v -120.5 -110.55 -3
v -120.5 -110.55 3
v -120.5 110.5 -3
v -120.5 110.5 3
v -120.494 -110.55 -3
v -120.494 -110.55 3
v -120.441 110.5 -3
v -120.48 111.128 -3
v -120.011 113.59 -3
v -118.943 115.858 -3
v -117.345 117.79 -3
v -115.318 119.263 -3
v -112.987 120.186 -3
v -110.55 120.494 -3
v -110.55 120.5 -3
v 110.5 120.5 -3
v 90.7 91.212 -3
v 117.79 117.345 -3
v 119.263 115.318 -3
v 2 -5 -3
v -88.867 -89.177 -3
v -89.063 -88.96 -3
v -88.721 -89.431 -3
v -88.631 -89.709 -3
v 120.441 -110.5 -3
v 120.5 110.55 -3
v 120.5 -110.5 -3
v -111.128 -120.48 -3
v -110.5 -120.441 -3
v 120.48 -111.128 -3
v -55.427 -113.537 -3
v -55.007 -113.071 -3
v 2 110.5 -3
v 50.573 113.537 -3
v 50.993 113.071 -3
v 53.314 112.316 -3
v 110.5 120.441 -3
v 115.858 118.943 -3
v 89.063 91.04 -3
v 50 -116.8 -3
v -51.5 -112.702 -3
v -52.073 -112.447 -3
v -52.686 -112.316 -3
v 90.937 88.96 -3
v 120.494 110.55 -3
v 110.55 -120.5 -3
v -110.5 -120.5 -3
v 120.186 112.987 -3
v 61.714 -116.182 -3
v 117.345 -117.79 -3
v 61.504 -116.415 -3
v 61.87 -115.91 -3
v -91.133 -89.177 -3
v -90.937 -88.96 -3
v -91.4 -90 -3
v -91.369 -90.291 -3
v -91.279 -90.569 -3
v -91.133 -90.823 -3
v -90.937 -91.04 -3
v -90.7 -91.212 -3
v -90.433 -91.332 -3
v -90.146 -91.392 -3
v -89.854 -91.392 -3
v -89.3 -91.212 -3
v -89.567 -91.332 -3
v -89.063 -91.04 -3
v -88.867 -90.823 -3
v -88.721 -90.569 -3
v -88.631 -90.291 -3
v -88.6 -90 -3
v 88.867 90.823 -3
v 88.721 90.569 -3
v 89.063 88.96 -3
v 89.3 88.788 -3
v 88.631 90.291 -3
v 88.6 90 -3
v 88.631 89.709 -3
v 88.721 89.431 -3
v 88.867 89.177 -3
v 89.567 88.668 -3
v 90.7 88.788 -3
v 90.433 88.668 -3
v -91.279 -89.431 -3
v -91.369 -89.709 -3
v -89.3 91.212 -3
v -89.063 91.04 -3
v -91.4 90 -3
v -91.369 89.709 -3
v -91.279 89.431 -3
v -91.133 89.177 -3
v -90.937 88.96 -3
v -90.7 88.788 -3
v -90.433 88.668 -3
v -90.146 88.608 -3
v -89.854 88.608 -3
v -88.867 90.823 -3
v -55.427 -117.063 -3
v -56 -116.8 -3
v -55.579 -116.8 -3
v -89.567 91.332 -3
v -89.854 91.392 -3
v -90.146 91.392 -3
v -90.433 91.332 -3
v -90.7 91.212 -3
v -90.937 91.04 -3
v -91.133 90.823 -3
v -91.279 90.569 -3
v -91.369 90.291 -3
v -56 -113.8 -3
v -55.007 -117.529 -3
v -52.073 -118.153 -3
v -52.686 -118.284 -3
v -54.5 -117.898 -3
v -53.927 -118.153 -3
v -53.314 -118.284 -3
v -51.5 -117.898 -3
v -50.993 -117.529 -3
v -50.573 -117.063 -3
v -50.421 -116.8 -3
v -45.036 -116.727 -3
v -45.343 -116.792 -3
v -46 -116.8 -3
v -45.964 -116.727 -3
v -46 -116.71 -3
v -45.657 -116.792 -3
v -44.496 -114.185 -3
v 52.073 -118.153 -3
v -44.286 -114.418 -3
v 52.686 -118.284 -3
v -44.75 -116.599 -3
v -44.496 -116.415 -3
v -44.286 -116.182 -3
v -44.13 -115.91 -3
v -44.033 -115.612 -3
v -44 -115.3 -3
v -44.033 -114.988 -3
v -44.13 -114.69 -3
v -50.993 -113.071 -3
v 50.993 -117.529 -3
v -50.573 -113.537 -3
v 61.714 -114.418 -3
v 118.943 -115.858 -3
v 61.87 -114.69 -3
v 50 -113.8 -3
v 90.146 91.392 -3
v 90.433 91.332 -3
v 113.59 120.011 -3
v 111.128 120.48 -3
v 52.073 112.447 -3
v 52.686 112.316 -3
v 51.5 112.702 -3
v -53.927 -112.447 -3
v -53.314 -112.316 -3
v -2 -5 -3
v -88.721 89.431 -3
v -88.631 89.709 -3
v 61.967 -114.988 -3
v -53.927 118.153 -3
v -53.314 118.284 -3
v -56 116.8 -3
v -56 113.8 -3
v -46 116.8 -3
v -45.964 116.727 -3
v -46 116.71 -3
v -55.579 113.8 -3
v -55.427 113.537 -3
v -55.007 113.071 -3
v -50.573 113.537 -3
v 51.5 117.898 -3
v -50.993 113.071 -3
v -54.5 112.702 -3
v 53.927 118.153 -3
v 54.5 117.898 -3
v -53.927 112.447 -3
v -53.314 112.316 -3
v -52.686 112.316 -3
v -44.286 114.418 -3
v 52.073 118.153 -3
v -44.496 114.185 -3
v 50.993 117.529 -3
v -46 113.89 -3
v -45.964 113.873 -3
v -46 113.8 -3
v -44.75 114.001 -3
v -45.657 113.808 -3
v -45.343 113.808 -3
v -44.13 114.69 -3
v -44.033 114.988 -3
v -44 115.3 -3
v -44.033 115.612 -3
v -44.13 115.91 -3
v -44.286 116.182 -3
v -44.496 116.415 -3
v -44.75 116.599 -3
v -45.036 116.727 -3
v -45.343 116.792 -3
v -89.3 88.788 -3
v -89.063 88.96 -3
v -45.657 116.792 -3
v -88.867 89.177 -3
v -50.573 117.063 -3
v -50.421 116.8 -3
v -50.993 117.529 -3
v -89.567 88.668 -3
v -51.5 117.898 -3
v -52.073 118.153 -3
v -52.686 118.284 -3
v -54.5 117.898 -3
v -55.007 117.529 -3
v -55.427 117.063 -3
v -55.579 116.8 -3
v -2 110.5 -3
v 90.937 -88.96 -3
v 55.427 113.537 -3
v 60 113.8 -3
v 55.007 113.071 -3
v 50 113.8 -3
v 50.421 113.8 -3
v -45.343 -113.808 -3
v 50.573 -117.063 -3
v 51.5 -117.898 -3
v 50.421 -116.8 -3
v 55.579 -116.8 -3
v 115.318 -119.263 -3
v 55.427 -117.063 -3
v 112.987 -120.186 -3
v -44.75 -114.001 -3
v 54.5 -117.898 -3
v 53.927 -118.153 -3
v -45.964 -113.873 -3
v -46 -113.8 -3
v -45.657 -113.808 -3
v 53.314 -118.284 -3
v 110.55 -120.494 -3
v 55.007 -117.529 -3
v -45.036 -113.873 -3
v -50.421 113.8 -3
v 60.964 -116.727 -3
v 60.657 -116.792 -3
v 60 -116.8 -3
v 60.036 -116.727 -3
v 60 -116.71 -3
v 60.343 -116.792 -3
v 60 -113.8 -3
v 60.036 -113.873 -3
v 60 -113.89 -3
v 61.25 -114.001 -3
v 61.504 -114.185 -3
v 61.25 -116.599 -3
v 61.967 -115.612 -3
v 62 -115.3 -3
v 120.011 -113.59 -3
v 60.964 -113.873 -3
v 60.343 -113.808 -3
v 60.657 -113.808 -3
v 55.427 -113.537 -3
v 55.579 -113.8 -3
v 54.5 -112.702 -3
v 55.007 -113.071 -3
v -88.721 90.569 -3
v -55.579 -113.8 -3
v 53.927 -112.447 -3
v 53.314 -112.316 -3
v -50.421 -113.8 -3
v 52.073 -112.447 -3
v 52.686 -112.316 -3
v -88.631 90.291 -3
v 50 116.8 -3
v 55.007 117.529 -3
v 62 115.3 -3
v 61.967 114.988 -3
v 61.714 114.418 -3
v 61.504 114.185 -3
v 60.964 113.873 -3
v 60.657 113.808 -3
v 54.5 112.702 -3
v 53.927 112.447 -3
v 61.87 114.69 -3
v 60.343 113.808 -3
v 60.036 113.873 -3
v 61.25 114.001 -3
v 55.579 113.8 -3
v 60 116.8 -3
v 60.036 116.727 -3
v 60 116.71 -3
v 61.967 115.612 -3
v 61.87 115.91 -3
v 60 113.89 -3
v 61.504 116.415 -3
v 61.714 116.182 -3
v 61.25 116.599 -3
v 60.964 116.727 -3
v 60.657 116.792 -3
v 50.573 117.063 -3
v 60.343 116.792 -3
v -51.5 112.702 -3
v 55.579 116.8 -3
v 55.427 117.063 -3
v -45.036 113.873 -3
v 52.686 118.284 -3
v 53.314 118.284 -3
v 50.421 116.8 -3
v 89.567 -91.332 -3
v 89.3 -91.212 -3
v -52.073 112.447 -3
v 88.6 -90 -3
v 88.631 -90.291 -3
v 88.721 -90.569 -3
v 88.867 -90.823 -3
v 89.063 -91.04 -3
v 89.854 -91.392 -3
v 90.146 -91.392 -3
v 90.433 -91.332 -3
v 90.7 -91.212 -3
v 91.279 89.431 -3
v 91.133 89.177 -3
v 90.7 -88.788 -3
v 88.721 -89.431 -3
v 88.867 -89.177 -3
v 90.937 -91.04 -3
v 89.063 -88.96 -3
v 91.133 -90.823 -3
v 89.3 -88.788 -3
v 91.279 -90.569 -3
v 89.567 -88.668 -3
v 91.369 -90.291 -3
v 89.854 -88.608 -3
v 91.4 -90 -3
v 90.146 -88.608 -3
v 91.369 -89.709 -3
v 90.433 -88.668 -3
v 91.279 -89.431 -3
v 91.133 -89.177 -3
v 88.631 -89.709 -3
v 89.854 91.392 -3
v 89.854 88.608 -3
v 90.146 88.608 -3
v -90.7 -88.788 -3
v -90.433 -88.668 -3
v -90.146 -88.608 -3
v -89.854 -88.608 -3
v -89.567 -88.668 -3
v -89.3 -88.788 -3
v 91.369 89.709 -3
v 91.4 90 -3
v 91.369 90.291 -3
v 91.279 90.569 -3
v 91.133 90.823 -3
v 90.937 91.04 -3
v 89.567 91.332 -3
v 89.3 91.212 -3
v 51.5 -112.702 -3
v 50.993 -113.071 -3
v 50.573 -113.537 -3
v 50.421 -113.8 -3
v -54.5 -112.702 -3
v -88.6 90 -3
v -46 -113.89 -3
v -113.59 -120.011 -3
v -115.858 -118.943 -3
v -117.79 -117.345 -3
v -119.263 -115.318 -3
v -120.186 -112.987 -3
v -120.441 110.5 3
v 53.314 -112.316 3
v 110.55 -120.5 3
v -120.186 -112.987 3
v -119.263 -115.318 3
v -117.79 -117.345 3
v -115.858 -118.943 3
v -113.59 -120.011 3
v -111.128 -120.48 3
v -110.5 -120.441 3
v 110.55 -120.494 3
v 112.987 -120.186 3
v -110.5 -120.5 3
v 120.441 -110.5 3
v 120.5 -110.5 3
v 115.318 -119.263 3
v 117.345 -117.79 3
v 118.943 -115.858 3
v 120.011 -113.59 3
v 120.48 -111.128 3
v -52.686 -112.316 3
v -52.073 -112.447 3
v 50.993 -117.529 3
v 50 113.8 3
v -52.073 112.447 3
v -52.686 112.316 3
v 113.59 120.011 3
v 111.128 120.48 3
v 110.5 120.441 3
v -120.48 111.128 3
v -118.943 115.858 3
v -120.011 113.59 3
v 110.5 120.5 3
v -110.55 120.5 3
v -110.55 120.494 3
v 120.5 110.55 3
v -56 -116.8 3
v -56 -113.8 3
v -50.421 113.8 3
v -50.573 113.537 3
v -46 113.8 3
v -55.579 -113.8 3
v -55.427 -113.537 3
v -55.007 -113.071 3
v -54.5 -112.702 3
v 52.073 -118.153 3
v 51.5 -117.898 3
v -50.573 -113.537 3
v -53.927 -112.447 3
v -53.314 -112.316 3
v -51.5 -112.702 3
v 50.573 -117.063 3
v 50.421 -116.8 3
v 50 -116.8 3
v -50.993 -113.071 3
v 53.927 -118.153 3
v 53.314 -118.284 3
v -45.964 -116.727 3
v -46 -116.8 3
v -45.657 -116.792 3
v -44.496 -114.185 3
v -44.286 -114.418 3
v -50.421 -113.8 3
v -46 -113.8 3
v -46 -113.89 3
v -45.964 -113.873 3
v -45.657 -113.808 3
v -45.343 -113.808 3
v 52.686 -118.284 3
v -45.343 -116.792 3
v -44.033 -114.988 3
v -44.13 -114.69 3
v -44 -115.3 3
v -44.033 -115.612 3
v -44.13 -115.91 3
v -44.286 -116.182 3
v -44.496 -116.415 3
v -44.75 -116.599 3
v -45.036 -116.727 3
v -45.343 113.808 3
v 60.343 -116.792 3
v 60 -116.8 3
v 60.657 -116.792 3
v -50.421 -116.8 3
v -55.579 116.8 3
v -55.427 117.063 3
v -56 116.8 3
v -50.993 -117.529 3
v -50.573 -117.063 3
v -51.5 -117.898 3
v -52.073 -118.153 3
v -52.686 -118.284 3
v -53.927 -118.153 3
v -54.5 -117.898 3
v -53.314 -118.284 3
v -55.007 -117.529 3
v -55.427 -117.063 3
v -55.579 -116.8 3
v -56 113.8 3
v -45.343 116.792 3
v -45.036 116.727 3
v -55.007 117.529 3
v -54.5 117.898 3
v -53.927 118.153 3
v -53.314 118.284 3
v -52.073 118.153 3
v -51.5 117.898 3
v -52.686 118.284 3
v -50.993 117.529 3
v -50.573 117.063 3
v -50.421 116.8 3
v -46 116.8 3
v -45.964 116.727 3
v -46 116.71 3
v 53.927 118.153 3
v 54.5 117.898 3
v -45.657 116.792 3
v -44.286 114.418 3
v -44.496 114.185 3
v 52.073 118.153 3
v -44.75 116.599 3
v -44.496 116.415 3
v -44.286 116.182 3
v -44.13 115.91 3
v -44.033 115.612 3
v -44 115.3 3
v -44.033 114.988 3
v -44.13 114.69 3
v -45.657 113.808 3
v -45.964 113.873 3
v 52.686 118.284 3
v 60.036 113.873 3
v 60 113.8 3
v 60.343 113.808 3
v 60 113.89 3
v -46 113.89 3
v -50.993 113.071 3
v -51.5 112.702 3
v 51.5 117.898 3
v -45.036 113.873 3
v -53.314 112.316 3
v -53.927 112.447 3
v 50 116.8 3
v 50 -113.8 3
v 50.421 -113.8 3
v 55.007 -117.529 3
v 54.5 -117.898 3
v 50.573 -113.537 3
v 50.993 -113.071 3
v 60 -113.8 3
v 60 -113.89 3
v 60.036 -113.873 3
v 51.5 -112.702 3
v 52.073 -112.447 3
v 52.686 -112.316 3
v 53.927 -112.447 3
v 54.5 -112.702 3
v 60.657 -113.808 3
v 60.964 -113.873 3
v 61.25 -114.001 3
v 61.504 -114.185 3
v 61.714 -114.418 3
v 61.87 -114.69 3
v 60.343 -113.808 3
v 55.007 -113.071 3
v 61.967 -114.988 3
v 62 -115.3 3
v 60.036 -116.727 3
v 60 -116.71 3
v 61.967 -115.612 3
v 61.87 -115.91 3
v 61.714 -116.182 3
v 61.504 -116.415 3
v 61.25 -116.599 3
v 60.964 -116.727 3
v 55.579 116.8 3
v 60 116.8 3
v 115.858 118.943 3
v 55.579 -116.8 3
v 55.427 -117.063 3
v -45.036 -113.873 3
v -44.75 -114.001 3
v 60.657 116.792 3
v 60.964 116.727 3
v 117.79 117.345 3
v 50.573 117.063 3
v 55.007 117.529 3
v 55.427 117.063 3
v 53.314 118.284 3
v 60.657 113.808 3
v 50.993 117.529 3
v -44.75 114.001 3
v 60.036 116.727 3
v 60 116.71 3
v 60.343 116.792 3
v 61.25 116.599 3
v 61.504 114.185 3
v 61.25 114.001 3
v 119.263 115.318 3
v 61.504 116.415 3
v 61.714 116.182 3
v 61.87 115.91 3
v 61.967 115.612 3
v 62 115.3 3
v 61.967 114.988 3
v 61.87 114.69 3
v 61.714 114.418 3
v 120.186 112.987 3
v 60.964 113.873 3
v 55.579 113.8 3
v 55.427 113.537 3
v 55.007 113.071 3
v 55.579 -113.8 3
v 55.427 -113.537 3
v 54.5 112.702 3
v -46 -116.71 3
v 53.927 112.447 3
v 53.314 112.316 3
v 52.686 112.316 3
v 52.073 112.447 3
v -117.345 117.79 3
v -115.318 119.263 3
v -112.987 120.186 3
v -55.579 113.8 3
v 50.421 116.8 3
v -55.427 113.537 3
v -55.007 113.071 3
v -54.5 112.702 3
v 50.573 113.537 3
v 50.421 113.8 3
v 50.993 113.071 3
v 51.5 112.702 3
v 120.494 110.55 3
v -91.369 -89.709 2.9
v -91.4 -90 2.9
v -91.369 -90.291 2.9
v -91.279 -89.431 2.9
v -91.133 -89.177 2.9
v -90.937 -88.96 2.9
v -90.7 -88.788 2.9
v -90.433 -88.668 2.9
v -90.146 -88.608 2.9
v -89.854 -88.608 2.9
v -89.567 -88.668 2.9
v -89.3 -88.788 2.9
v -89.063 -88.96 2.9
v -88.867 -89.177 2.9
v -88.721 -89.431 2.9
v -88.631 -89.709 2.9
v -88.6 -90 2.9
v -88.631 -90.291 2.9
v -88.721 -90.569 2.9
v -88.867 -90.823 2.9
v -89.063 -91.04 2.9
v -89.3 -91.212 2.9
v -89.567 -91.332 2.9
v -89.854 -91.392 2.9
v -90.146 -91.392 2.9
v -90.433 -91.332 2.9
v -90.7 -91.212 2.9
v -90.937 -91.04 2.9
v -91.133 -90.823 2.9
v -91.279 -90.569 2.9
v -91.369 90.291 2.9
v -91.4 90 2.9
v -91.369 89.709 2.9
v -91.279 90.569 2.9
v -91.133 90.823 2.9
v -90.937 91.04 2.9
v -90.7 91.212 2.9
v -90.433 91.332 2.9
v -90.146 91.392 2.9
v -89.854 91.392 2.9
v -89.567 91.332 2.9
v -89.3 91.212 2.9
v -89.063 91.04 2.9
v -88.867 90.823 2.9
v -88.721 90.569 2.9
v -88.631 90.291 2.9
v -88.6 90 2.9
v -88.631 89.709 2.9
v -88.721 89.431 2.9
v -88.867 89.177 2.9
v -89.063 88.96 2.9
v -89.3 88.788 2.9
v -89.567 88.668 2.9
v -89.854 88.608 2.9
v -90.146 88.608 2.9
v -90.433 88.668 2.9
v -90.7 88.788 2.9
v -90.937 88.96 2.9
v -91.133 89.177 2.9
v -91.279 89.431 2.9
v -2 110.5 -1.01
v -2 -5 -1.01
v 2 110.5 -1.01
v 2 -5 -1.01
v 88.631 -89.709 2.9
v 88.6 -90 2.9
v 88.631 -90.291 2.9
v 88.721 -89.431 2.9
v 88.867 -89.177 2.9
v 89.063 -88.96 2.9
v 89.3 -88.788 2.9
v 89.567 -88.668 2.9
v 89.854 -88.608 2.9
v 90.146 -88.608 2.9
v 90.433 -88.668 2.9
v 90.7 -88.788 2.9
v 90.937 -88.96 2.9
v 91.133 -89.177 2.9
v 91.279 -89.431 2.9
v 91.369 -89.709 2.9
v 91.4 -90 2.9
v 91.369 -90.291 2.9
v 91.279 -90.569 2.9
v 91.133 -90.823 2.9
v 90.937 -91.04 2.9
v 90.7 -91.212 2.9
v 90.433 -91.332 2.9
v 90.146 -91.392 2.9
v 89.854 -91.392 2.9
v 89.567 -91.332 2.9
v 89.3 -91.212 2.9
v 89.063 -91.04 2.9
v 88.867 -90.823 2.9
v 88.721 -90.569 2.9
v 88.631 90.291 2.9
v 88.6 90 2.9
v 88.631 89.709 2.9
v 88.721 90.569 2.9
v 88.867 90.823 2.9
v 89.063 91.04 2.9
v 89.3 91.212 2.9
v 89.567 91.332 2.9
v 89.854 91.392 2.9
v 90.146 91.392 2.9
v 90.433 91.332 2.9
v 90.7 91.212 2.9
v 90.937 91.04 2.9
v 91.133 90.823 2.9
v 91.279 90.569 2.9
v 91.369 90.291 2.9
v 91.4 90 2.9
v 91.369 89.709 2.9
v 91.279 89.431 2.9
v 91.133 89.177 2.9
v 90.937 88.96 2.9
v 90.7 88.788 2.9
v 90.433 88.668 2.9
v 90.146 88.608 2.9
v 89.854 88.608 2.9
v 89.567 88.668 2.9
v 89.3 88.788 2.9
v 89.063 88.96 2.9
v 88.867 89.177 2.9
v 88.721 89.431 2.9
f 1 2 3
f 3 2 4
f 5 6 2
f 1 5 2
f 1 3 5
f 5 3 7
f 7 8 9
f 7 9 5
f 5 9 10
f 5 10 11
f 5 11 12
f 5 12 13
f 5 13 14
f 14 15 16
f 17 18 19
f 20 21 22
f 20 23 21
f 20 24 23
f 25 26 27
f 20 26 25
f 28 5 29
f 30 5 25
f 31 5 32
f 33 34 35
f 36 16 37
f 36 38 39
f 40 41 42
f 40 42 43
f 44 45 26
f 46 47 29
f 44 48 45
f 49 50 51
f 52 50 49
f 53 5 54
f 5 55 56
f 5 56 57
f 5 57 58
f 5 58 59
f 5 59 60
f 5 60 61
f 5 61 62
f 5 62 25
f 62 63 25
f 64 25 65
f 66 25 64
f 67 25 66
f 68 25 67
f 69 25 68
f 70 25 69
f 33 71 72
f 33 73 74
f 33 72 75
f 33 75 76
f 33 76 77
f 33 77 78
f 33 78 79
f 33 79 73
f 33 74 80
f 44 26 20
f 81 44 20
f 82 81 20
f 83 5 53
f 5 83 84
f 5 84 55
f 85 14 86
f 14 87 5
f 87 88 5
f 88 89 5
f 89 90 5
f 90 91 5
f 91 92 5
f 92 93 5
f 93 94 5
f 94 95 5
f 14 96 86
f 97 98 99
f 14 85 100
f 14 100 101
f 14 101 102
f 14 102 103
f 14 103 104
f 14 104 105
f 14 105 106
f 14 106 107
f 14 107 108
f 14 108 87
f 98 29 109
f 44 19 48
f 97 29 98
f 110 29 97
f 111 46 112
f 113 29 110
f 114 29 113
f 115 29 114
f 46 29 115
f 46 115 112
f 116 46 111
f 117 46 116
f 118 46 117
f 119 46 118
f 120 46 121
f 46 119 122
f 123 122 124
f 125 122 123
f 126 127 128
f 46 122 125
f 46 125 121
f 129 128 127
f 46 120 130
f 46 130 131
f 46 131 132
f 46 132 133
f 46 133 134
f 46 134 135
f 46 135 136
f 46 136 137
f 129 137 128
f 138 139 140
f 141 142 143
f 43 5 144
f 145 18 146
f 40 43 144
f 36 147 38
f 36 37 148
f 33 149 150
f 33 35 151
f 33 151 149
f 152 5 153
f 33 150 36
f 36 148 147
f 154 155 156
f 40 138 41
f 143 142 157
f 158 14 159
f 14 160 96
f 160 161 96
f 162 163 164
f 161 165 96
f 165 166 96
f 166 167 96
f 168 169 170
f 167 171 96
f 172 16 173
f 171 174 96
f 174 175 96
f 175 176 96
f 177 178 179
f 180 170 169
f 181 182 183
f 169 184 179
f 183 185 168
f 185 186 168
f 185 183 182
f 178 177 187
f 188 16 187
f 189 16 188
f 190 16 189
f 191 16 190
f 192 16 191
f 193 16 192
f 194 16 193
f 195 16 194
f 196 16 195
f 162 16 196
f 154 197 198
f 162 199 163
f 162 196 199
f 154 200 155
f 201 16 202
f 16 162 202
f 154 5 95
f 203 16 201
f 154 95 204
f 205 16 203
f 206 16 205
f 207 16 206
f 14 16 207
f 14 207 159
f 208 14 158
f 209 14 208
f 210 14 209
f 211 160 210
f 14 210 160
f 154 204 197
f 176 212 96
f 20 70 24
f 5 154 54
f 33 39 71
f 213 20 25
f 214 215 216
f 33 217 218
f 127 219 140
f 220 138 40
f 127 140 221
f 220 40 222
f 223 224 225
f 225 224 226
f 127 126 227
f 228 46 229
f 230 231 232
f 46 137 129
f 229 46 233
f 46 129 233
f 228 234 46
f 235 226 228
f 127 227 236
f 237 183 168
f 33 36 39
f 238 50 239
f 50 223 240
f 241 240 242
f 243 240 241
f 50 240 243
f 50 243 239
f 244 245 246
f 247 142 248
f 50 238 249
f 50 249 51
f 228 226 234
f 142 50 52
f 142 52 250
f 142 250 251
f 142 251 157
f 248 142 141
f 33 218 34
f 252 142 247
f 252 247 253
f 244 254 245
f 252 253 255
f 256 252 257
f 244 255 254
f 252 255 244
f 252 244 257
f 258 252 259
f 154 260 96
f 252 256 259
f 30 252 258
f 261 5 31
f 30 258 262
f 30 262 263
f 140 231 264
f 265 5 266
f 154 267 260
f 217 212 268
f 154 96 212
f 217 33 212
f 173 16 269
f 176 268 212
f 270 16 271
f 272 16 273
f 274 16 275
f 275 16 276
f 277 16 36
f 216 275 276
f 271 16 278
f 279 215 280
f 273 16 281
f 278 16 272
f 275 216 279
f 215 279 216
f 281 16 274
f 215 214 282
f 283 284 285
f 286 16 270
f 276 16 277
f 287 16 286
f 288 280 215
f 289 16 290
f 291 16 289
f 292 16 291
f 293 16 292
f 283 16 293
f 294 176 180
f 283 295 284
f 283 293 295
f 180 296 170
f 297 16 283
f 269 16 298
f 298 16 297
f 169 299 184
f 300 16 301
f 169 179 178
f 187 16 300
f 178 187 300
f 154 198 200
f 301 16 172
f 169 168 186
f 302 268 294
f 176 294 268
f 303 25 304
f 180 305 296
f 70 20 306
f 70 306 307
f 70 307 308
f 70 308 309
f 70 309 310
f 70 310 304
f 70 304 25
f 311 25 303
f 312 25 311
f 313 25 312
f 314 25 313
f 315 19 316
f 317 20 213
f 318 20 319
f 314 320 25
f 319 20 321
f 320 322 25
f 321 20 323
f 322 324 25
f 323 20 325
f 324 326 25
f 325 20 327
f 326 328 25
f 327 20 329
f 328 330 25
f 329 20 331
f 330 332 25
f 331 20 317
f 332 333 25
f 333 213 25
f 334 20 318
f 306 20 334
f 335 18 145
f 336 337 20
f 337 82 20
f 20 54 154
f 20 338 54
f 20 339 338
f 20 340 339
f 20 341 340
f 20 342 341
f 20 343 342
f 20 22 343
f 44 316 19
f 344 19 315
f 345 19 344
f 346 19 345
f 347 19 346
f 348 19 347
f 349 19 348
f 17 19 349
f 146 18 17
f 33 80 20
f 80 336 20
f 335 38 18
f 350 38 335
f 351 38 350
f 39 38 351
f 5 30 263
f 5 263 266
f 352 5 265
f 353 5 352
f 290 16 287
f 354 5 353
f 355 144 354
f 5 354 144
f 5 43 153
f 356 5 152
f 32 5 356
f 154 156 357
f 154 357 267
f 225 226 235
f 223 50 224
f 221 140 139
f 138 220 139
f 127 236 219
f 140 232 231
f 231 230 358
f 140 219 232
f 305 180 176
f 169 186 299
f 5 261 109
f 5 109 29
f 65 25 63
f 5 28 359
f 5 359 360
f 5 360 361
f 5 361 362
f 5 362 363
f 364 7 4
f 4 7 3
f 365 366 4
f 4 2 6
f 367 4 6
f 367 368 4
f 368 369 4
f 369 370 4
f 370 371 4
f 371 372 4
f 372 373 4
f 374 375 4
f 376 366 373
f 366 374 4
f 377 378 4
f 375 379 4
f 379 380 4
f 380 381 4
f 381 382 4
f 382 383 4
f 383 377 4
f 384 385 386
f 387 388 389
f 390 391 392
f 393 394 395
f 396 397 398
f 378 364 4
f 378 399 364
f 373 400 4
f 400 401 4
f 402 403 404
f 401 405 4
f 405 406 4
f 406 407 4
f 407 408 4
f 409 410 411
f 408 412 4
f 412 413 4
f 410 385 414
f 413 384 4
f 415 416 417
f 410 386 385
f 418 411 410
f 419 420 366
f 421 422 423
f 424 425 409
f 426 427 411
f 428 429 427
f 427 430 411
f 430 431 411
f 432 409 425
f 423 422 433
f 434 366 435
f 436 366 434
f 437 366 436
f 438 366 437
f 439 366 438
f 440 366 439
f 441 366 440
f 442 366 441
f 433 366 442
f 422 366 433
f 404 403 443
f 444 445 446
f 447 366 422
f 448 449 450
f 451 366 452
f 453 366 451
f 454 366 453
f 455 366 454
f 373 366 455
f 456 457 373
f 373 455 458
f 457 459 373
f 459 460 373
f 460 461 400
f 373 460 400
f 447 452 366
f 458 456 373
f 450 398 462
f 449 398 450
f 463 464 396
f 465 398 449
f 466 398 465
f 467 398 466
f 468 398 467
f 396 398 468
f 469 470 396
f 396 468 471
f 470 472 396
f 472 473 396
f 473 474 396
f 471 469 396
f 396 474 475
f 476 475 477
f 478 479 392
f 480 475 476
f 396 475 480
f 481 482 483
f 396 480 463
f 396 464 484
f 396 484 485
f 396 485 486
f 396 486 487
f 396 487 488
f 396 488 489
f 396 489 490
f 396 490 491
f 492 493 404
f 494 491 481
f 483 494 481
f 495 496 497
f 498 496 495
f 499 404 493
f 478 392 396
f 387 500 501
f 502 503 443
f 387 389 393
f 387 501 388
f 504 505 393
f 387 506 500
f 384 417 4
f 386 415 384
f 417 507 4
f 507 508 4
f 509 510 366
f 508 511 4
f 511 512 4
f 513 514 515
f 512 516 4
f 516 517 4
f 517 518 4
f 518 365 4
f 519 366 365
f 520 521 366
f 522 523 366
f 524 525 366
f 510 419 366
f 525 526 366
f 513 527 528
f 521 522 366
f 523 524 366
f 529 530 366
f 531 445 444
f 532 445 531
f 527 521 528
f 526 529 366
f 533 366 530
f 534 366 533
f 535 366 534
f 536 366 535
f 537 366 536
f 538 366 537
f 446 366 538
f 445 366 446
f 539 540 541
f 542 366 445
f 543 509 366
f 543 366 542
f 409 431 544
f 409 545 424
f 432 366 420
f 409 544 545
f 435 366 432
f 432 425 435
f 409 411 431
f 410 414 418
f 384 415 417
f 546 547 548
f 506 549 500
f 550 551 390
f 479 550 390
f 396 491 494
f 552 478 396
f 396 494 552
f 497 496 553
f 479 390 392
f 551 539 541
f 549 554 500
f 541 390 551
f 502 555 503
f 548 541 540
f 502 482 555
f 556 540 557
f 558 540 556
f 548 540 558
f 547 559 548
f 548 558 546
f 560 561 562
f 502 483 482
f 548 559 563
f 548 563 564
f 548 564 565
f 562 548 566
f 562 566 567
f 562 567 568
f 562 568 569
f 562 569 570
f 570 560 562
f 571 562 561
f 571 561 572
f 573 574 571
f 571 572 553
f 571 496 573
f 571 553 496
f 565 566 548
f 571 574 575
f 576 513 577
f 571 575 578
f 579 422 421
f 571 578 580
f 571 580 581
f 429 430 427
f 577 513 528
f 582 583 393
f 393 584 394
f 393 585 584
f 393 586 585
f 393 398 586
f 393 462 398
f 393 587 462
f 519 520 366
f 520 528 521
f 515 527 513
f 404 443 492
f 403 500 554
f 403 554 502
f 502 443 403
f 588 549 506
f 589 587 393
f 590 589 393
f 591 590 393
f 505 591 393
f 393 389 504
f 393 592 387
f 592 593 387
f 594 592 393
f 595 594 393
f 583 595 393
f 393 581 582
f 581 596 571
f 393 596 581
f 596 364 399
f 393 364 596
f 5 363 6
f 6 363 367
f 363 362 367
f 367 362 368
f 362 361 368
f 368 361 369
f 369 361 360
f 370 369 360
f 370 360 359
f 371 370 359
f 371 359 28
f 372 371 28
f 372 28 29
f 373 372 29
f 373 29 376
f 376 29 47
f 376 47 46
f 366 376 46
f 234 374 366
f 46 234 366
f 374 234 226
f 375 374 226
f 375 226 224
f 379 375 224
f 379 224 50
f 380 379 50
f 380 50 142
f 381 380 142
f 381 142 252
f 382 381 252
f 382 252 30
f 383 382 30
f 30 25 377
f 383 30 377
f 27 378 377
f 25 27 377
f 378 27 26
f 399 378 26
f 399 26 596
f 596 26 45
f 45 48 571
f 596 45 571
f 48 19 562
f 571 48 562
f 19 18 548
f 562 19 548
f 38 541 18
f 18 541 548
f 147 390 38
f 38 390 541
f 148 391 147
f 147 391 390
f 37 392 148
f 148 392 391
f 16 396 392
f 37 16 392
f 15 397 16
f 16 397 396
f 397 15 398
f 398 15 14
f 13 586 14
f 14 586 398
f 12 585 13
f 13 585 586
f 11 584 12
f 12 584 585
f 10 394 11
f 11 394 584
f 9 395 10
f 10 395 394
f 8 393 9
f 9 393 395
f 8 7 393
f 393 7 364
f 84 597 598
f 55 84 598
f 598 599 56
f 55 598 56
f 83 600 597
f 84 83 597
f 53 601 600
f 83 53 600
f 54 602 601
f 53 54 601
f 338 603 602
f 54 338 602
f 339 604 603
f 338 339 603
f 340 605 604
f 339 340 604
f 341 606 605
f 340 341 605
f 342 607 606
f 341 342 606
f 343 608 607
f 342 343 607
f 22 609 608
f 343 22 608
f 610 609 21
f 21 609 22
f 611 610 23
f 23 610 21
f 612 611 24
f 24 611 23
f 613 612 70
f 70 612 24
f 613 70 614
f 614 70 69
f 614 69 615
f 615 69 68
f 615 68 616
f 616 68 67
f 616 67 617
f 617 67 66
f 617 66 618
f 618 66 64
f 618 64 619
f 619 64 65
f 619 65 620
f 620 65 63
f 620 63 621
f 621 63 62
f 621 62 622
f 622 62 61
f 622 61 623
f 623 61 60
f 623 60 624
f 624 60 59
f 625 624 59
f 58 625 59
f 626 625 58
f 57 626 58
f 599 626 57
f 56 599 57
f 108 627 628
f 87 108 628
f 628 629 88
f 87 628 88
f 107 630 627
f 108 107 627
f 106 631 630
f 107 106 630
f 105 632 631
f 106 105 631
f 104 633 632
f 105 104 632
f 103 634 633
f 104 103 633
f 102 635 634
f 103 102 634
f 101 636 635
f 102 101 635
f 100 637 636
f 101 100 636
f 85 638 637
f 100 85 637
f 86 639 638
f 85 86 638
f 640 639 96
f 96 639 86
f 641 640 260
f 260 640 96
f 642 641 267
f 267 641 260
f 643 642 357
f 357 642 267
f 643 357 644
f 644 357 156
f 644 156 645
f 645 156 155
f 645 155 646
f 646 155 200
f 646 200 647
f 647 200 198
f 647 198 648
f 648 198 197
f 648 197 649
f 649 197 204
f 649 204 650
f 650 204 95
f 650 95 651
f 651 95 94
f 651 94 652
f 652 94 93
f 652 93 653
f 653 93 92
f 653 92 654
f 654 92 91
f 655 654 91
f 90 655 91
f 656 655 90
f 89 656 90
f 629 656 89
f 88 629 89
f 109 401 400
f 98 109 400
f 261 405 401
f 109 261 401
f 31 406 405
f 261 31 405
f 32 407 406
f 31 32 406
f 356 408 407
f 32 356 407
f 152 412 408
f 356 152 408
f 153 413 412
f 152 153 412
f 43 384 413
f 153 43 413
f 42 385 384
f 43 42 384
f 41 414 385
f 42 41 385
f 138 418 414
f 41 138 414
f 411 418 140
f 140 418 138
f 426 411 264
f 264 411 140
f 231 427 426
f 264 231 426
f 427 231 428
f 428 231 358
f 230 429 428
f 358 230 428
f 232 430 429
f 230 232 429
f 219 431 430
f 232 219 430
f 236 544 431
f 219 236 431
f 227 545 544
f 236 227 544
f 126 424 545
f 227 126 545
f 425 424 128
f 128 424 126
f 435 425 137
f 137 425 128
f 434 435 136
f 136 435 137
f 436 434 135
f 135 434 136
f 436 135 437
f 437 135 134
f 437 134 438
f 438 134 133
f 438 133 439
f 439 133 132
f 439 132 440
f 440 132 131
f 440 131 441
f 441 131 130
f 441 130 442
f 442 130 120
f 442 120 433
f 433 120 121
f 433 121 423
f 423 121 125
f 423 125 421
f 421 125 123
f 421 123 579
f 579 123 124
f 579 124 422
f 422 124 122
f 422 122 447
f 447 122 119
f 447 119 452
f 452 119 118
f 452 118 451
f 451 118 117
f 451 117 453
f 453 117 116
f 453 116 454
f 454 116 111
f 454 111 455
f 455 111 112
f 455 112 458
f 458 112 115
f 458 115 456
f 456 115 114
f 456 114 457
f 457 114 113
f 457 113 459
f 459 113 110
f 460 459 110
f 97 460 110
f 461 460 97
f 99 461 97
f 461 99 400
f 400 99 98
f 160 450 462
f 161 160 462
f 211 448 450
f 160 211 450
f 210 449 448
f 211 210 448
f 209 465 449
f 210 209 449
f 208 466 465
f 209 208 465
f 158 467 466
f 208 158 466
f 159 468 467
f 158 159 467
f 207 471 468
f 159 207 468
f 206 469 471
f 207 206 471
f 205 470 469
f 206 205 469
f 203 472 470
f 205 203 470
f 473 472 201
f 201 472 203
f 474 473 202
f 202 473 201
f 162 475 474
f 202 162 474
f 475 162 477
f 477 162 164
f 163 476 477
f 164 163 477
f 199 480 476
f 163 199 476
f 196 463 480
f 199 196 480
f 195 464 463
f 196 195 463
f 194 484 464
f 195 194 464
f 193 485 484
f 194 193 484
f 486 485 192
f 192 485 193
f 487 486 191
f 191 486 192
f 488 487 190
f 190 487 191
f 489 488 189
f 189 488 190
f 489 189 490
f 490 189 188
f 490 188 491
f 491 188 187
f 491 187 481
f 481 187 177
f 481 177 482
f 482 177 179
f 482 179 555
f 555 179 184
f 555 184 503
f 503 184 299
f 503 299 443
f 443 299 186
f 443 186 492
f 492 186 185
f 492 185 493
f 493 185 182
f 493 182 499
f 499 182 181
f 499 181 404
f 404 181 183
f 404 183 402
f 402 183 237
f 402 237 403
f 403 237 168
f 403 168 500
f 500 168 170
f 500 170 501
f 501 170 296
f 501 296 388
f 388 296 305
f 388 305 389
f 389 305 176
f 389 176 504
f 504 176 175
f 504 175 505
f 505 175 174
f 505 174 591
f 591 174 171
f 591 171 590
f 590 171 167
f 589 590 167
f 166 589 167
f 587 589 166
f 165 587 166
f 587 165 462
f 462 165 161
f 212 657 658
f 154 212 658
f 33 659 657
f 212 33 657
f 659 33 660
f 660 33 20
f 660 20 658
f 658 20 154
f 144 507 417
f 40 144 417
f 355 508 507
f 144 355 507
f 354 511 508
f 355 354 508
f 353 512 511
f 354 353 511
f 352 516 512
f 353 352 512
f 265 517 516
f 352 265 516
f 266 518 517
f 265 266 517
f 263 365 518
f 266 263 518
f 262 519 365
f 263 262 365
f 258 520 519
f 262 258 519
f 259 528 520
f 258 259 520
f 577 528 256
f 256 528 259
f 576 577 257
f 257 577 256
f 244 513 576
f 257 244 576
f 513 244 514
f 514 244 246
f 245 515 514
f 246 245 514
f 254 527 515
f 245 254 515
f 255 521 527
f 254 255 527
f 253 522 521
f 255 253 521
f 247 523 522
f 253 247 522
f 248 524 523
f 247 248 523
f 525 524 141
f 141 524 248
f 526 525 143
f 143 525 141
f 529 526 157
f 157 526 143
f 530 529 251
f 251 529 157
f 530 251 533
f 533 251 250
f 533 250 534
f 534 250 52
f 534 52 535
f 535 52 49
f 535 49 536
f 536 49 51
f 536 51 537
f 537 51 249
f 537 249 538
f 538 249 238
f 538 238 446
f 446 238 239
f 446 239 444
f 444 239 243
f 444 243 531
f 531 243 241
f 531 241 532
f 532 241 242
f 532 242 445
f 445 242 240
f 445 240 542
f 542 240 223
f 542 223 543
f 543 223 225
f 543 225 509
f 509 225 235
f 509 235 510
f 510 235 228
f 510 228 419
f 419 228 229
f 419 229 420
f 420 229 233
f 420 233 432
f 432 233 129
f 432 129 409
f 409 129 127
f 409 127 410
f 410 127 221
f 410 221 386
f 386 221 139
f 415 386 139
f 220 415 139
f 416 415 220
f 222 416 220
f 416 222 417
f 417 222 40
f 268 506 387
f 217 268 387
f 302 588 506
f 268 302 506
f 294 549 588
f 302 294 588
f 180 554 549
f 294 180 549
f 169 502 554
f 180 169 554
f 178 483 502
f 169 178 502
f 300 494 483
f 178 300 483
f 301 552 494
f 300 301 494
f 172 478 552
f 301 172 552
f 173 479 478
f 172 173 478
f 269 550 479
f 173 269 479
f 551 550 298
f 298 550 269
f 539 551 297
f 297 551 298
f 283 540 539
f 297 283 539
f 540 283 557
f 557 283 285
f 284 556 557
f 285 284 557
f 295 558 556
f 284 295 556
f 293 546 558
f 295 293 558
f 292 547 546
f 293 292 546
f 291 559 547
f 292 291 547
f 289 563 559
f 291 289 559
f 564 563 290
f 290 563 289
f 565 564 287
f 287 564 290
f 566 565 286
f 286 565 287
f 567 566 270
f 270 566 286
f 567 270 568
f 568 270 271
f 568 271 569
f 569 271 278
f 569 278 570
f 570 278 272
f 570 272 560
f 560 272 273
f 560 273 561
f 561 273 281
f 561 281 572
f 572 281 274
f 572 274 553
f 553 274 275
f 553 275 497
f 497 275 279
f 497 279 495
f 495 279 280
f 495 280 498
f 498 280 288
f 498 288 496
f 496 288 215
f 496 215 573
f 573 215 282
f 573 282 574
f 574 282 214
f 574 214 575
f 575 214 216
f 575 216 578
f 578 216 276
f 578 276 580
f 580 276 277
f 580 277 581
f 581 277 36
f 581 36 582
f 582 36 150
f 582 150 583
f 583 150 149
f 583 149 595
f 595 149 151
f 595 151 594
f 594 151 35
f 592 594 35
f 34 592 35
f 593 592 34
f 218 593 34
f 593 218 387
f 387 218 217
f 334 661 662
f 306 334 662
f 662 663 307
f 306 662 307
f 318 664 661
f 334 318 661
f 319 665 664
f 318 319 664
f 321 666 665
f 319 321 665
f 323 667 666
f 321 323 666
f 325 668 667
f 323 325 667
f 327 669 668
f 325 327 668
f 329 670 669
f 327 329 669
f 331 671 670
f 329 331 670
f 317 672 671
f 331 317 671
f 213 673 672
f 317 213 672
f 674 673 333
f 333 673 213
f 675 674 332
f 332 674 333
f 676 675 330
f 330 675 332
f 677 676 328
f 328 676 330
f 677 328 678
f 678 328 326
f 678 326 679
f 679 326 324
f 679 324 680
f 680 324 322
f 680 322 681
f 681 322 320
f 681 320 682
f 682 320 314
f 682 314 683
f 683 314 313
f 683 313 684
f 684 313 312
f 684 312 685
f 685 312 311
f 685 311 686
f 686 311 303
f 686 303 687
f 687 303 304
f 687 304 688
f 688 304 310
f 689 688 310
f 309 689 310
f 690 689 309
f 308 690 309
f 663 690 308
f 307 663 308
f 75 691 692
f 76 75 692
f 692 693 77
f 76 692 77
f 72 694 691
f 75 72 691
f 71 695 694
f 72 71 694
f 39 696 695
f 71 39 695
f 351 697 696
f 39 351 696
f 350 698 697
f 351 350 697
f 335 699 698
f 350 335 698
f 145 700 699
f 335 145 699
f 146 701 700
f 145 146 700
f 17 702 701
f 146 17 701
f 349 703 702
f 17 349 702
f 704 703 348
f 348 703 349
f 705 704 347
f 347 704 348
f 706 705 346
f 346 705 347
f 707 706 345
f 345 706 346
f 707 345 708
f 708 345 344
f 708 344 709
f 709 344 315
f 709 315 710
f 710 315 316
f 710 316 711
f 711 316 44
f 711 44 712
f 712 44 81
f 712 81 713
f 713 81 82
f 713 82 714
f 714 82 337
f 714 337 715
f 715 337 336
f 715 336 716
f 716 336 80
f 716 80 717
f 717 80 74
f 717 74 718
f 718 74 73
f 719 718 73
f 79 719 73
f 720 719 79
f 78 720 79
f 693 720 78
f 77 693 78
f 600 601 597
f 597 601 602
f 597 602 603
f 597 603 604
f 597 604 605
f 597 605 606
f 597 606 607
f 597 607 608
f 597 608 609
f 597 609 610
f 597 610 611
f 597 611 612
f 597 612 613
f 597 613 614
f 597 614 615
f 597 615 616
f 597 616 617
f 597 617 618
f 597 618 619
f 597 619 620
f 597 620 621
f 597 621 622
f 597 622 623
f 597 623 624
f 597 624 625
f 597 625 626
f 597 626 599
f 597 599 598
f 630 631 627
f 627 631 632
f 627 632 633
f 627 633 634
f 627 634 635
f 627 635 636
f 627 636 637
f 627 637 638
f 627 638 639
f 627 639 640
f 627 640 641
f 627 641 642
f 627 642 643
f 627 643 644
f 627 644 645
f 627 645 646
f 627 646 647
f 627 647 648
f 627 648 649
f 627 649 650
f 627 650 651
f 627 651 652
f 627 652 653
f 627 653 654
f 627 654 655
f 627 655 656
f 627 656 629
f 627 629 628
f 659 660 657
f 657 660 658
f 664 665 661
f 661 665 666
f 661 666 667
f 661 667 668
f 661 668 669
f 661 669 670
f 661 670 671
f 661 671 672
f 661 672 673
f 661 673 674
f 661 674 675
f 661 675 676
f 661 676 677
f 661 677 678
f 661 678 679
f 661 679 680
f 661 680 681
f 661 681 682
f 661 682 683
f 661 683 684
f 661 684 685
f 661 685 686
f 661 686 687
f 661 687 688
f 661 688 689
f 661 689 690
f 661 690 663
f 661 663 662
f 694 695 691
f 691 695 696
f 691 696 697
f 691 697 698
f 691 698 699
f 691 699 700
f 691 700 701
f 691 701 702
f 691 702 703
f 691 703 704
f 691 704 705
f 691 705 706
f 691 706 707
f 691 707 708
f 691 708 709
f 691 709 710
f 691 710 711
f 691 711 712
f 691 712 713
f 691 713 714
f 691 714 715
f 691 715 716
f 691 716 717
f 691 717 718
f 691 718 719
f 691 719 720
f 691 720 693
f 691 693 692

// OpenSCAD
// file: roundCornersCube.scad
/*
http://codeviewer.org/view/code:1b36 
Copyright (C) 2011 Sergio Vilches
This program is free software: you can redistribute it and/or modify it under the terms of the GNU General Public License as published by the Free Software Foundation, either version 3 of the License, or (at your option) any later version.
This program is distributed in the hope that it will be useful, but WITHOUT ANY WARRANTY; without even the implied warranty of MERCHANTABILITY or FITNESS FOR A PARTICULAR PURPOSE. See the GNU General Public License for more details. You should have received a copy of the GNU General Public License along with this program. If not, see <http://www.gnu.org/licenses/>.
Contact: s.vilches.e@gmail.com


    ----------------------------------------------------------- 
                 Round Corners Cube (Extruded)                
      roundCornersCube(x,y,z,r) Where:                        
         - x = Xdir width                                     
         - y = Ydir width                                     
         - z = Height of the cube                             
         - r = Rounding radious                               
                                                              
      Example: roundCornerCube(10,10,2,1);                    
     *Some times it's needed to use F6 to see good results!   
 	 ----------------------------------------------------------- 
*/
// Test it!
// roundCornersCube(10,5,2,1);


module createMeniscus(h,radius) // This module creates the shape that needs to be substracted from a cube to make its corners rounded.
difference(){        //This shape is basicly the difference between a quarter of cylinder and a cube
   translate([radius/2+0.1,radius/2+0.1,0]){
      cube([radius+0.2,radius+0.1,h+0.2],center=true);         // All that 0.x numbers are to avoid "ghost boundaries" when substracting
   }

   cylinder(h=h+0.2,r=radius,$fn = 25,center=true);
}


module roundCornersCube(x,y,z,r)  // Now we just substract the shape we have created in the four corners
difference(){
   cube([x,y,z], center=true);

translate([x/2-r,y/2-r]){  // We move to the first corner (x,y)
      rotate(0){  
         createMeniscus(z,r); // And substract the meniscus
      }
   }
   translate([-x/2+r,y/2-r]){ // To the second corner (-x,y)
      rotate(90){
         createMeniscus(z,r); // But this time we have to rotate the meniscus 90 deg
      }
   }
      translate([-x/2+r,-y/2+r]){ // ... 
      rotate(180){
         createMeniscus(z,r);
      }
   }
      translate([x/2-r,-y/2+r]){
      rotate(270){
         createMeniscus(z,r);
      }
   }
}
// main file
use <roundCornersCube.scad>;
$fn = 30;

module plate() {

    width = 241;
    length = width;
    thickness = 6;
    groove_depth = 2;

    module fix() {
        cylinder(r = 3, h = thickness  * 2);

        translate([7.5, 0, 0]) {
            cylinder(r = 1.5, h = thickness * 2);
        }

        translate([2, 0, 0]) {
            cube([10, 3, thickness * 4], center = true);
        }
    }

    module holes_heater() {
        width_space = 180;
        length_space = width_space;
        depth = 6;
        radius = 1.4;

        translate([ width_space / 2, length_space / 2, -thickness / 2 - 0.1 ]) {
            cylinder(r = radius, h = depth);
        }

        translate([ - width_space / 2, length_space / 2, -thickness / 2 - 0.1 ]) {
            cylinder(r = radius, h = depth);
        }

        translate([ width_space / 2, - length_space / 2, -thickness / 2 - 0.1 ]) {
            cylinder(r = radius, h = depth);
        }

        translate([ - width_space / 2, - length_space / 2, -thickness / 2 - 0.1 ]) {
            cylinder(r = radius, h = depth);
        }
    }

    difference() {
        roundCornersCube(width, length, thickness, 10);

        // Groove
        translate([ -2, -5, -thickness + groove_depth - 0.01 ]) {
            cube(size = [ 4, length / 2 - 5, 3 ]);
        }

        translate([106 / 2, 230.6 / 2, -thickness]) {
            fix();
        }

        translate([- 106 / 2, 230.6 / 2, -thickness]) {
            fix();
        }

        translate([106 / 2, - 230.6 / 2, -thickness]) {
            fix();
        }

        translate([- 106 / 2, - 230.6 / 2, -thickness]) {
            fix();
        }

        holes_heater();
    }
}

plate();
